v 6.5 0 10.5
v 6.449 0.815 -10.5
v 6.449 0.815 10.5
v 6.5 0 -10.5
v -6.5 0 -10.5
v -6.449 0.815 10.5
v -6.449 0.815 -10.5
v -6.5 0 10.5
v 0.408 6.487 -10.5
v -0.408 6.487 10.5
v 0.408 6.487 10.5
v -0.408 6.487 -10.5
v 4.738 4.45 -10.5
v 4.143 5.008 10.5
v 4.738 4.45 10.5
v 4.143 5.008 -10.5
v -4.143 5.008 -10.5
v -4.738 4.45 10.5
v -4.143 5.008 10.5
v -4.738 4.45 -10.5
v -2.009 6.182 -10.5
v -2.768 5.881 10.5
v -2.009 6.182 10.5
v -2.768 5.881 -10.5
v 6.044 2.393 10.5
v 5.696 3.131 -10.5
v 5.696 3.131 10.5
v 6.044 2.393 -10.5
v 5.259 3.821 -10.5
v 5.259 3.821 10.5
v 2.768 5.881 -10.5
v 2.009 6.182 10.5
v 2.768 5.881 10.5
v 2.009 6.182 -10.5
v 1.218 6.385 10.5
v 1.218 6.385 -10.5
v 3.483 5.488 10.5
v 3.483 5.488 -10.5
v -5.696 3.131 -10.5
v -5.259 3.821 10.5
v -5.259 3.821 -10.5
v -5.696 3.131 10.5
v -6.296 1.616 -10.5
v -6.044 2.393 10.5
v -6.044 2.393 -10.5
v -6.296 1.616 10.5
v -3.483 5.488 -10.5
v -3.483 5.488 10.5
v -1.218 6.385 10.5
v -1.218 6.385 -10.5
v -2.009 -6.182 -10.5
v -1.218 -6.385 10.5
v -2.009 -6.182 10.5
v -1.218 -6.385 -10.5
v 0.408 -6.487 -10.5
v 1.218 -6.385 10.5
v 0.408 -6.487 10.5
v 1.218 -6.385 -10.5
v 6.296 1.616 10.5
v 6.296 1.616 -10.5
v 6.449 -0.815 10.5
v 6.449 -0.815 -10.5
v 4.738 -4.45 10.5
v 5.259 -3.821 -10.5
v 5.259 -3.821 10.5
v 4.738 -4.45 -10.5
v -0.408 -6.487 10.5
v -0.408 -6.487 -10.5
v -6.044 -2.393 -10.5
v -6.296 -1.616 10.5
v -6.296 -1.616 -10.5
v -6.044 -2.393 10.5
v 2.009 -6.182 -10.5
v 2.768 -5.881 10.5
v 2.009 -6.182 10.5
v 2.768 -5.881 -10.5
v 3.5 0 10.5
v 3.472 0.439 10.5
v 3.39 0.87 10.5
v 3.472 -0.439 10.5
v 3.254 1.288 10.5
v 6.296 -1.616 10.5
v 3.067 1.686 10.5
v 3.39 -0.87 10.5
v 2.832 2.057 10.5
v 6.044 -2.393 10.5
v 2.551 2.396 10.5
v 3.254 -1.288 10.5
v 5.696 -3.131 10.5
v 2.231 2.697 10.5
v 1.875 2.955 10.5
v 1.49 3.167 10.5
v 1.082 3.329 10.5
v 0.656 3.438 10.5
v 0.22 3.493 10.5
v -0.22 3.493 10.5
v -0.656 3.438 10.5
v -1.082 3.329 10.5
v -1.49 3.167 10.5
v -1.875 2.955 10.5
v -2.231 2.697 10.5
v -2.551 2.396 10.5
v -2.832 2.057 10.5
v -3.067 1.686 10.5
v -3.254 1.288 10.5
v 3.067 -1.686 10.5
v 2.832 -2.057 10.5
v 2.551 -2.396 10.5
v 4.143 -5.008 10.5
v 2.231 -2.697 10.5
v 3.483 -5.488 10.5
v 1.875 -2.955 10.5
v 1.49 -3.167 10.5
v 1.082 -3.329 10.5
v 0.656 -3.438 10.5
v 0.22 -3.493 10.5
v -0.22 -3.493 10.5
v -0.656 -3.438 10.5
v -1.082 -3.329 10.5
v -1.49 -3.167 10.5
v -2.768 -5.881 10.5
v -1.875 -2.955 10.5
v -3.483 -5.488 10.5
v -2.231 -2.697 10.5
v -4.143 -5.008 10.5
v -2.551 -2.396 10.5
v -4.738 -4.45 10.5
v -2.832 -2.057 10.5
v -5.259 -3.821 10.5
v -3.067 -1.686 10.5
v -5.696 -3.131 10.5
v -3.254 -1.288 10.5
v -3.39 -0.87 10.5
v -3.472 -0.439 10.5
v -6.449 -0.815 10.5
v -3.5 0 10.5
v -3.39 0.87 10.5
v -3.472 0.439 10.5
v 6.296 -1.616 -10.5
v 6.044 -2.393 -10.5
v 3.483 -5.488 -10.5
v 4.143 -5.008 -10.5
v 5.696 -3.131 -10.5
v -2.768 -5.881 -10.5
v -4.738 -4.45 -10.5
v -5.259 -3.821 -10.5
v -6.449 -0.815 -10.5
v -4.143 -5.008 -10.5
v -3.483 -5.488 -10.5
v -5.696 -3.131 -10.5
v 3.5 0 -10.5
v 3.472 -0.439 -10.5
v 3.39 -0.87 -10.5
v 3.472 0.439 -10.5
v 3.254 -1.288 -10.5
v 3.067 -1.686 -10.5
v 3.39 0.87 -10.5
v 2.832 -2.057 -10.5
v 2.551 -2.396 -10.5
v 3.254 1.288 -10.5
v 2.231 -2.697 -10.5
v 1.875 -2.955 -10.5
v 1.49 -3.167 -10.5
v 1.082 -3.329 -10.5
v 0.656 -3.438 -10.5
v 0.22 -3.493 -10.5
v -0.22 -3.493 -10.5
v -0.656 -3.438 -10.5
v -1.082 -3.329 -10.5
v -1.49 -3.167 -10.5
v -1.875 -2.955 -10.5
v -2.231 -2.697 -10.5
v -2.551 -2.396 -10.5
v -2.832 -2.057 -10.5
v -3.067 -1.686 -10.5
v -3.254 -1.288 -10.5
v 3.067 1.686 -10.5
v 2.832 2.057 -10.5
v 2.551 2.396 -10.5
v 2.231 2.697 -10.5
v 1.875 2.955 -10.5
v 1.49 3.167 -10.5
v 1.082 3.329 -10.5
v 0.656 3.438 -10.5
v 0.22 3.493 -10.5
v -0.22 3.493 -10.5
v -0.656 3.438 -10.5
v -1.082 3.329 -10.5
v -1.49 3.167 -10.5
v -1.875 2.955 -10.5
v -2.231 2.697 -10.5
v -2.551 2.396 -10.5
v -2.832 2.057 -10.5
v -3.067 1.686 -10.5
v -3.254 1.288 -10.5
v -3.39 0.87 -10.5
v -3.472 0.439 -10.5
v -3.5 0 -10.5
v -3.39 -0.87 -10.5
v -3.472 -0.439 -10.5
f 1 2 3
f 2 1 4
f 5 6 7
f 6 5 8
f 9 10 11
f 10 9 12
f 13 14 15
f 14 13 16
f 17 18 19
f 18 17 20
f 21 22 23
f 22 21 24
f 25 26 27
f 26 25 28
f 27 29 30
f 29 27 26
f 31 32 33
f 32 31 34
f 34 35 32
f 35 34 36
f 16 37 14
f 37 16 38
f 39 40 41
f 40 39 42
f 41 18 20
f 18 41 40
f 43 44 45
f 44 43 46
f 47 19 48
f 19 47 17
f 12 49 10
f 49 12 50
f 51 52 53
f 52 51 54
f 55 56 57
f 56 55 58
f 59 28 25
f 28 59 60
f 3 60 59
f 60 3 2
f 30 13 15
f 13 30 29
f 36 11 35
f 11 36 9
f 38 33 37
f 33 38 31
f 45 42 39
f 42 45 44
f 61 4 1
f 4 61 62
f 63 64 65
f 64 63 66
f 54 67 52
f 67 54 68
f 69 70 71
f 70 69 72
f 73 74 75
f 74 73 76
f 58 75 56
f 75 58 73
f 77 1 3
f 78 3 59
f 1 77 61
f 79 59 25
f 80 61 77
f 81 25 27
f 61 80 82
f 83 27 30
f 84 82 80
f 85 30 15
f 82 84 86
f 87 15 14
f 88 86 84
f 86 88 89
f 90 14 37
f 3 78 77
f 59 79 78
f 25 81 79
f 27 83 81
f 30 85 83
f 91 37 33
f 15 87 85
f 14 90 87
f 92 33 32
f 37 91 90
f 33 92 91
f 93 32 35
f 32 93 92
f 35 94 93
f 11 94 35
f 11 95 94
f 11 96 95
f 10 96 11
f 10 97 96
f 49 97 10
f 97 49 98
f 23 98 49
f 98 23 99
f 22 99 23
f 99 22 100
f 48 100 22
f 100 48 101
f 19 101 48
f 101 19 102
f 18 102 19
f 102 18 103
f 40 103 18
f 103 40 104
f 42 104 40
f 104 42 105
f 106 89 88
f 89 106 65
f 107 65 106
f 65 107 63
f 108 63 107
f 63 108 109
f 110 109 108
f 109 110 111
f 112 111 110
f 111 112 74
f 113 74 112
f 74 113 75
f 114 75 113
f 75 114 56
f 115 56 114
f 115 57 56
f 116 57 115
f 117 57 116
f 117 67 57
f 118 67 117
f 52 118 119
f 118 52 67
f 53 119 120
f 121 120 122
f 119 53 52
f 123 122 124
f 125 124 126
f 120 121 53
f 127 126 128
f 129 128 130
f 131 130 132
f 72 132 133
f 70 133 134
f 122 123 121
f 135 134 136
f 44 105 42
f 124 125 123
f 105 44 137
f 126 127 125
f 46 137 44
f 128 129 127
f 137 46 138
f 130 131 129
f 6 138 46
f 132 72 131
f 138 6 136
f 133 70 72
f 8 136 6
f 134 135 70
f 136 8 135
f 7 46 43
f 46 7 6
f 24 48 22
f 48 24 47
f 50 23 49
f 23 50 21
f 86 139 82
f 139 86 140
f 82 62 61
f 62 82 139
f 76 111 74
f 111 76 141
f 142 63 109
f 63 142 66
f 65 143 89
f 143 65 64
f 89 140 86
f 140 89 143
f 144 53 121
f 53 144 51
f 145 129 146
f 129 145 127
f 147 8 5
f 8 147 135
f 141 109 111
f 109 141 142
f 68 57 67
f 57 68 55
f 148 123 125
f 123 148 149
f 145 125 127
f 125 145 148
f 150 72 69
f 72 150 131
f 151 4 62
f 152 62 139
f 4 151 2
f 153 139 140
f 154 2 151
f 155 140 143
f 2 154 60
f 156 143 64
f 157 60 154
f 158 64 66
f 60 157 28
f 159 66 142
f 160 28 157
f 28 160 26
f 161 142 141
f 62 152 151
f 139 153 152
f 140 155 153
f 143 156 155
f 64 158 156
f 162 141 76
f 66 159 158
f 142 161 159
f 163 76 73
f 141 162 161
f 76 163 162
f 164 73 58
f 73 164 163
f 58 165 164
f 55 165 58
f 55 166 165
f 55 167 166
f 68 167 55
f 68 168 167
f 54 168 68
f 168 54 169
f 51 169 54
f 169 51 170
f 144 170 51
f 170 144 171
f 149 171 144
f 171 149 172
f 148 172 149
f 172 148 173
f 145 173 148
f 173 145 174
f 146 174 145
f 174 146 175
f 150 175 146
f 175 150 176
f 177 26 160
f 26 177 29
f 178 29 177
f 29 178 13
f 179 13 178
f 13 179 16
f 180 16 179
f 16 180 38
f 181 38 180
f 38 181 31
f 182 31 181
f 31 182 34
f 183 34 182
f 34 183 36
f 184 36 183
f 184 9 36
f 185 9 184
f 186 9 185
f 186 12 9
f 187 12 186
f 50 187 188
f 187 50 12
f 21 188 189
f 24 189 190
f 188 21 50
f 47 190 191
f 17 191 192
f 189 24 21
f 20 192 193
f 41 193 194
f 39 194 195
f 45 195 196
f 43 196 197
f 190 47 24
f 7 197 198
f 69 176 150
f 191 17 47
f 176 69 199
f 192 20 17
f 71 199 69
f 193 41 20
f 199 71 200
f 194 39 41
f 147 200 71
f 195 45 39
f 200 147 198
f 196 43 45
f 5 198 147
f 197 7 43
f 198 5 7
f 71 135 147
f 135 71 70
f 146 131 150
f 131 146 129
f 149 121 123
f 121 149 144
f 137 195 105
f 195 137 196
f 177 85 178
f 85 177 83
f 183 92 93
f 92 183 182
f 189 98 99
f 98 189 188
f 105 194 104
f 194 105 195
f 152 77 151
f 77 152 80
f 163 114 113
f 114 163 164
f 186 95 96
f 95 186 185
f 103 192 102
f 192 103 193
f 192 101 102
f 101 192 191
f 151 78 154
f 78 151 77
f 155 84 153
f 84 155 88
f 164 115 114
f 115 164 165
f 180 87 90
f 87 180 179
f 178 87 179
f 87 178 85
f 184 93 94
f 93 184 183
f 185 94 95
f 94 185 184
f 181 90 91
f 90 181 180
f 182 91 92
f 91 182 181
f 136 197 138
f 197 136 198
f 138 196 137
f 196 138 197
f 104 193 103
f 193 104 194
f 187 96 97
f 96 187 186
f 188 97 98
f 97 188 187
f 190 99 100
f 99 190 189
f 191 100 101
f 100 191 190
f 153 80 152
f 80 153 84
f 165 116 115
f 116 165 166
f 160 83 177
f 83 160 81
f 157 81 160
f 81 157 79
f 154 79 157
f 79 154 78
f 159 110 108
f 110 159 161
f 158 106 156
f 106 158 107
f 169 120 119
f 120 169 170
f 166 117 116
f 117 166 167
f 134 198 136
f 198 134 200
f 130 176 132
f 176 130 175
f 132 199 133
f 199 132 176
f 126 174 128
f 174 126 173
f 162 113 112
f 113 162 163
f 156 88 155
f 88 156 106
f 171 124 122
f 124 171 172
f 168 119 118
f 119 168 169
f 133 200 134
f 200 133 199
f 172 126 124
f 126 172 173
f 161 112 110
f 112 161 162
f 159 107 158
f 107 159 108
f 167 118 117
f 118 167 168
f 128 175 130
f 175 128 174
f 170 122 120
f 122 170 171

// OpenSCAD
$fn = 50;


difference() {
	union() {
		translate(v = [0, 0, -10.5000000000]) {
			cylinder(h = 21, r = 6.5000000000);
		}
	}
	union() {
		translate(v = [0, 0, -100.0000000000]) {
			cylinder(h = 200, r = 3.5000000000);
		}
	}
}
